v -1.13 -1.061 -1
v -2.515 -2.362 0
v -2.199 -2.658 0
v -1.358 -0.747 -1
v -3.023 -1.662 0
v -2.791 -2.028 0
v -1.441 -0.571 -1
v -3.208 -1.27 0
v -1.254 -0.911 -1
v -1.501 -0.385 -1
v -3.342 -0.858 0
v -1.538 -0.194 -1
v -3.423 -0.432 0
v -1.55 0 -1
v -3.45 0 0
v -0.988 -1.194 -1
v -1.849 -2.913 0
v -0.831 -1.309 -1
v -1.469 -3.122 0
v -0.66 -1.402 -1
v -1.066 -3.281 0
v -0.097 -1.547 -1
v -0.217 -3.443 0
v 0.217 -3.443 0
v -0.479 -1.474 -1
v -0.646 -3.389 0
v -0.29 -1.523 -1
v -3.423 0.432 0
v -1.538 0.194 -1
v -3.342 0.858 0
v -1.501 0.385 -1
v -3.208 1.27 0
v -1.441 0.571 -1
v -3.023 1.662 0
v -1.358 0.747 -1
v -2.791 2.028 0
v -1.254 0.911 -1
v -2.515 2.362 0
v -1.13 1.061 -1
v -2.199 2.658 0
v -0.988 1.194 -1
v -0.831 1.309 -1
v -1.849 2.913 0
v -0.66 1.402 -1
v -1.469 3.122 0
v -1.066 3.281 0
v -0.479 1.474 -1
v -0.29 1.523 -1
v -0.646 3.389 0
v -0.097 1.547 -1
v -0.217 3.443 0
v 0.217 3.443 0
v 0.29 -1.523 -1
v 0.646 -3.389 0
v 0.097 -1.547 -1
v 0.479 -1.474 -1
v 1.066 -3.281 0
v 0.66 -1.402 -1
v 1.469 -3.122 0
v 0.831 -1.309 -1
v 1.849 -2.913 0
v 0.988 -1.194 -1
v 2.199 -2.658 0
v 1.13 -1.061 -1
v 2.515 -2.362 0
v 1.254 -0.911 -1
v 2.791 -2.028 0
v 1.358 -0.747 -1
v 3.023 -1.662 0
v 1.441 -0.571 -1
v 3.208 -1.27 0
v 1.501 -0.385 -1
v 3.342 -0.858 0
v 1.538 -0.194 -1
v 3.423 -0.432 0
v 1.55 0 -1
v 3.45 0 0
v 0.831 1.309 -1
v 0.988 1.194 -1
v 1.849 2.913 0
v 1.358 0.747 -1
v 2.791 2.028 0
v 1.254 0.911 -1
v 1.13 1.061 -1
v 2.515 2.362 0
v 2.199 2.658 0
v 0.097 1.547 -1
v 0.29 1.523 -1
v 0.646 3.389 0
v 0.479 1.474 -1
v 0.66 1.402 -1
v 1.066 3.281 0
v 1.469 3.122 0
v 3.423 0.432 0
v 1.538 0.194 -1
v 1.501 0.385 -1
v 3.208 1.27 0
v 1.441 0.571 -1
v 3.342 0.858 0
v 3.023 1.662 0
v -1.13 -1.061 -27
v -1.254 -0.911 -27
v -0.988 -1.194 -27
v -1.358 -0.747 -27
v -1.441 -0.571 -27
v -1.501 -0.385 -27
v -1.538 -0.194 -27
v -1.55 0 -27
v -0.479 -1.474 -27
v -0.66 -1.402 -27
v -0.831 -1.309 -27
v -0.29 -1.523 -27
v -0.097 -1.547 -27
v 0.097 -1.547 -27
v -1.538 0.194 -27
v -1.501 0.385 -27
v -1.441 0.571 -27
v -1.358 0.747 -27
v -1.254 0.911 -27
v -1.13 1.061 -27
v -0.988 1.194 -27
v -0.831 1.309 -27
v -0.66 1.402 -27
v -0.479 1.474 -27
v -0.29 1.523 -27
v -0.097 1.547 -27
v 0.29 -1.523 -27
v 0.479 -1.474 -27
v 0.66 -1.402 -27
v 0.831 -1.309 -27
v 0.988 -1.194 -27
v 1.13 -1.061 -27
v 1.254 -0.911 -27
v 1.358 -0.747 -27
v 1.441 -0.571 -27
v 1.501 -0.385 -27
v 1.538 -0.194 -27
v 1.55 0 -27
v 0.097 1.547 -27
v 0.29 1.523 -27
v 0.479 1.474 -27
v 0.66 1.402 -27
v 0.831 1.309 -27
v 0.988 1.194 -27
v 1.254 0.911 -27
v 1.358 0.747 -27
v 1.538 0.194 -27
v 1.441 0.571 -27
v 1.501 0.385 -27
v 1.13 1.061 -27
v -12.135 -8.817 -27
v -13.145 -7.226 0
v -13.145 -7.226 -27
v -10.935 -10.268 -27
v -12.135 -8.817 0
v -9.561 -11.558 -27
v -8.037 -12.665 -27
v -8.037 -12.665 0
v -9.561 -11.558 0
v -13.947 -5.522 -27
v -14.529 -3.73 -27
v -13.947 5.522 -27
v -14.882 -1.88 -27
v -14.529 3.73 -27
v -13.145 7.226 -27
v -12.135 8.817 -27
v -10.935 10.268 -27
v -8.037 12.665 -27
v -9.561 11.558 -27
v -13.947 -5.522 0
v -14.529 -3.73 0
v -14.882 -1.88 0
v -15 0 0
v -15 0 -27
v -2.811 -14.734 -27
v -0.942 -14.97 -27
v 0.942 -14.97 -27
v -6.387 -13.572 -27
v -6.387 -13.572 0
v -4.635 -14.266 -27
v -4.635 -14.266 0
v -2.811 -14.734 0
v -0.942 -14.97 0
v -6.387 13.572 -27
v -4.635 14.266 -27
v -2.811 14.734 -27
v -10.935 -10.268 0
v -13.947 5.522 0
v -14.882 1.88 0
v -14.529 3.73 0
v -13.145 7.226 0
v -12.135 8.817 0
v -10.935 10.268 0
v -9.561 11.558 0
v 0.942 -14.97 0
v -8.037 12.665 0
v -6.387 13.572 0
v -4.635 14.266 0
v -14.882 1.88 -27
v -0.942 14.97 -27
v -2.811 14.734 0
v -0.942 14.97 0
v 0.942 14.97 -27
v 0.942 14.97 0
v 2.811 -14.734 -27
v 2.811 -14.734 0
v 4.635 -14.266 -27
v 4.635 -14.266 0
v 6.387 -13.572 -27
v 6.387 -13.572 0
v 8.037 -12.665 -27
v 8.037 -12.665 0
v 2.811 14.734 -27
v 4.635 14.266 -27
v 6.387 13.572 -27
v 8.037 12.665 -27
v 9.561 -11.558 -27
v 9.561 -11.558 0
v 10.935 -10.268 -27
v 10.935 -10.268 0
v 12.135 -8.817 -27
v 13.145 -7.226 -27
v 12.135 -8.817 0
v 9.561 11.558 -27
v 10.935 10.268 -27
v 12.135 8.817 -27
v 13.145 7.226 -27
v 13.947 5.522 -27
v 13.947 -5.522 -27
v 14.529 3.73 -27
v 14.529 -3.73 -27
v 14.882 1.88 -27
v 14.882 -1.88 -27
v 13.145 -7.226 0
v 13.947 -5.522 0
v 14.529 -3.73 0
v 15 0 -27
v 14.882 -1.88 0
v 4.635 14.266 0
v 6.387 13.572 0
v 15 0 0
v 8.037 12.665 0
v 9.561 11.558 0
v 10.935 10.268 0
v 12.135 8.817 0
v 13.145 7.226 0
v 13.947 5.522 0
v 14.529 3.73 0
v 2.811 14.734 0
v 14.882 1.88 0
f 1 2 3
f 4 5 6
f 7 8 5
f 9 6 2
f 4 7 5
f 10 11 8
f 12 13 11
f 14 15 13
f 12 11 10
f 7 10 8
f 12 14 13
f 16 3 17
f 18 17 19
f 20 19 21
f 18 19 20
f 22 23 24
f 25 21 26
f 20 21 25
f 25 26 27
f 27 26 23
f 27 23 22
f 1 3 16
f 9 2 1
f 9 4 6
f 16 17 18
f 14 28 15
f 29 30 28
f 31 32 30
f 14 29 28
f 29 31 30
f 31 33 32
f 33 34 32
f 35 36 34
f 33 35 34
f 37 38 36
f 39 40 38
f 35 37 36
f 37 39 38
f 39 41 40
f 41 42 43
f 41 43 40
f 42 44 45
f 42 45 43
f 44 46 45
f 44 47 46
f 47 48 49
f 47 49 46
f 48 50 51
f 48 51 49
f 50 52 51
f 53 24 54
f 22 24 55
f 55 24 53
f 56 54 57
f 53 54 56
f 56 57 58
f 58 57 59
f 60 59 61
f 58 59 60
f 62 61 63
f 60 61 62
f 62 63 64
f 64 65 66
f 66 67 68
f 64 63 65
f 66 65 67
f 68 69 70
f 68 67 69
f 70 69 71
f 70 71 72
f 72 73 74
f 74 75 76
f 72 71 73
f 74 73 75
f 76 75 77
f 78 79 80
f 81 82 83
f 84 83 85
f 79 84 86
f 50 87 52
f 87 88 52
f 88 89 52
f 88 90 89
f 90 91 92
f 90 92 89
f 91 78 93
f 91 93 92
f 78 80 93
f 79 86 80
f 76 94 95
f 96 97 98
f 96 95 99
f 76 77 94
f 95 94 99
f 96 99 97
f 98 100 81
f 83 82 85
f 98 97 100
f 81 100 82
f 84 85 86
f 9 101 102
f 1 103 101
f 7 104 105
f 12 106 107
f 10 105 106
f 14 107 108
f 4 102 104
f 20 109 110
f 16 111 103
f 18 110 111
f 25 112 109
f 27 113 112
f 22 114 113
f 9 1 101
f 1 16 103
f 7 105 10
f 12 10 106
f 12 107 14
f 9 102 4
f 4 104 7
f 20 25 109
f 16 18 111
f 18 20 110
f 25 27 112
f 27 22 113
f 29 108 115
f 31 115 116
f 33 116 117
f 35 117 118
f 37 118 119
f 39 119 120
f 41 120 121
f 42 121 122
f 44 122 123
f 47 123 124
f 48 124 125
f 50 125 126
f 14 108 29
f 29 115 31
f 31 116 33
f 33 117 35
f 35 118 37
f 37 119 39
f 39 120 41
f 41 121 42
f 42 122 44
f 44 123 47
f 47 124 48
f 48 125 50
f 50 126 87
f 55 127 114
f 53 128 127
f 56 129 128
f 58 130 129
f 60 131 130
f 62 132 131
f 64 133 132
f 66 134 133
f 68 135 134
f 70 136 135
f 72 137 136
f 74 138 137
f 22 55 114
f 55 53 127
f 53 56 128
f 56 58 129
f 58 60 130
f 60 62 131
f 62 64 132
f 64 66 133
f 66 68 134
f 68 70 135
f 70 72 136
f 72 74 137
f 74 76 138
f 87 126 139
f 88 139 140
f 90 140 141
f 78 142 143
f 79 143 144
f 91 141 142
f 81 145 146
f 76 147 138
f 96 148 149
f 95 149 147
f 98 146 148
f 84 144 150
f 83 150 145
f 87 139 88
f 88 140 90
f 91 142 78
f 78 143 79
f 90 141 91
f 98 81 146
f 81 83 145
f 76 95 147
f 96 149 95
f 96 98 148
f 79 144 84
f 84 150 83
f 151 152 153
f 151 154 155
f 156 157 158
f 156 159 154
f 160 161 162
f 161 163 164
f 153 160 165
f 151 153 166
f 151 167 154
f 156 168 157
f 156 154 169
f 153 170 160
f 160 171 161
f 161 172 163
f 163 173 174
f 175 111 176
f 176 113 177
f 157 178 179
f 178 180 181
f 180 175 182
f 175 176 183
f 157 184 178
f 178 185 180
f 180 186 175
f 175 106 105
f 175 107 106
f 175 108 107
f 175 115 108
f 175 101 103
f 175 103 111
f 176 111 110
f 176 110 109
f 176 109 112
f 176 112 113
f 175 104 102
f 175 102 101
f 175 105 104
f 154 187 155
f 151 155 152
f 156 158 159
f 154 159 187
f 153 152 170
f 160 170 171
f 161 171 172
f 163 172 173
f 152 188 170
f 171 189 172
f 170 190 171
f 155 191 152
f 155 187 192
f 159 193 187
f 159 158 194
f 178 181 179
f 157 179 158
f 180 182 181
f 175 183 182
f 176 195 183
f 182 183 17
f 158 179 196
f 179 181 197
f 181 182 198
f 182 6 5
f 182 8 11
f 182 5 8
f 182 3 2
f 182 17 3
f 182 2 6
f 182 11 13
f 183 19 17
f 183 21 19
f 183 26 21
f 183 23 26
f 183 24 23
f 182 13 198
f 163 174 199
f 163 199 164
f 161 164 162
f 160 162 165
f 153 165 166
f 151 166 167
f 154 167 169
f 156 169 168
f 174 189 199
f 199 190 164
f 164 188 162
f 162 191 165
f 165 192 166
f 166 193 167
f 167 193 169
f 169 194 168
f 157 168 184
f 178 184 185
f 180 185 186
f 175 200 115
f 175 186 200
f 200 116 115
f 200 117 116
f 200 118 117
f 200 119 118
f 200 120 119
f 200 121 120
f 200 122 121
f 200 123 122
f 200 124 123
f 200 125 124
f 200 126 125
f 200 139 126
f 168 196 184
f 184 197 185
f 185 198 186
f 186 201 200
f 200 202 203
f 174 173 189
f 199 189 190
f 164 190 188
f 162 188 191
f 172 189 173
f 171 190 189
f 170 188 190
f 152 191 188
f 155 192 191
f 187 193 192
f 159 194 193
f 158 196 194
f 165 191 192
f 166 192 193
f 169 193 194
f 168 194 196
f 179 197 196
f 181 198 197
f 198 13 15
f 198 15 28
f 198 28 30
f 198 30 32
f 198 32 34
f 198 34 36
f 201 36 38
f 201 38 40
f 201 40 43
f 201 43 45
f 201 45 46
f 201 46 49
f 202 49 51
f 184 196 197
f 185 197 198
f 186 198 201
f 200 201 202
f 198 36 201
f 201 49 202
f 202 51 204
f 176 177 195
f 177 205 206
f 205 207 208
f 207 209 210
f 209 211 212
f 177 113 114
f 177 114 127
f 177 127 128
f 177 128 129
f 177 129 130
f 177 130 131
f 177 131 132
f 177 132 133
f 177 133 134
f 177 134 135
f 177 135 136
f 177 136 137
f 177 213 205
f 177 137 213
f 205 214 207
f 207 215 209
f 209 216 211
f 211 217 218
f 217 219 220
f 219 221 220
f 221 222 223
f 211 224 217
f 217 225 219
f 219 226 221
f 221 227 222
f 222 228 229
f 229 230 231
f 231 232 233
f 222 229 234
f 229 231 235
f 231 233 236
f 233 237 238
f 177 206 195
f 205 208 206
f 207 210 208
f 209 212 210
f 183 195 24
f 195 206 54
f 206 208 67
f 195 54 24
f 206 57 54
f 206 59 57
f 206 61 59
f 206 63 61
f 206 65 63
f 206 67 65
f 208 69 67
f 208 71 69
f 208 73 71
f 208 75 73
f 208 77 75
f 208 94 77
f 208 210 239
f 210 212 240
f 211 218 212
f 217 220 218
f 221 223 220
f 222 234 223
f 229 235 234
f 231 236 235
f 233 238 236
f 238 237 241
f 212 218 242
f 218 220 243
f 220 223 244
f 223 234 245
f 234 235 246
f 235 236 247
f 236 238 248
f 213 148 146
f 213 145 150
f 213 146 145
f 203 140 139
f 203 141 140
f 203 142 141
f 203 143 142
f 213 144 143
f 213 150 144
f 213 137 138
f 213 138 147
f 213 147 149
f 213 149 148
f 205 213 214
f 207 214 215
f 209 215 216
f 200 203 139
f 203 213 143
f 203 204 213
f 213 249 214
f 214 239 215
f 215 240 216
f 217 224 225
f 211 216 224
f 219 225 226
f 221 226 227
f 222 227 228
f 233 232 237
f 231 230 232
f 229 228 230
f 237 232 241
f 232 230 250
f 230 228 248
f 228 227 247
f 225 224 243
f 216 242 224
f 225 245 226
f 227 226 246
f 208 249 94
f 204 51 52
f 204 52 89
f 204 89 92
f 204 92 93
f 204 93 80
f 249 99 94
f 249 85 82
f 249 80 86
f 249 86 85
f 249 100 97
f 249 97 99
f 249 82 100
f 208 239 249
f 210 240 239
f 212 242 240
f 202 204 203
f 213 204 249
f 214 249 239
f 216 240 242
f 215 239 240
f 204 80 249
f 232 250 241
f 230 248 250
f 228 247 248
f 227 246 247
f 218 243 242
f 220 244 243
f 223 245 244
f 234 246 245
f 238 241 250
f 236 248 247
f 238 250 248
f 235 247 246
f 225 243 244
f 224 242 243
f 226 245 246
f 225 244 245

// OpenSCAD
$fn = 50;


difference() {
	union() {
		translate(v = [0, 0, -27.0000000000]) {
			cylinder(h = 27, r = 15.0000000000);
		}
	}
	union() {
		translate(v = [0, 0, 0]) {
			rotate(a = [0, 0, 0]) {
				difference() {
					union() {
						translate(v = [0, 0, -30.0000000000]) {
							cylinder(h = 30, r = 1.2500000000);
						}
						translate(v = [0, 0, -1.0000000000]) {
							cylinder(h = 1.0000000000, r1 = 1.5500000000, r2 = 3.4500000000);
						}
						translate(v = [0, 0, -30.0000000000]) {
							cylinder(h = 30, r = 1.5500000000);
						}
						translate(v = [0, 0, -30.0000000000]) {
							cylinder(h = 30, r = 1.2500000000);
						}
					}
					union();
				}
			}
		}
	}
}
